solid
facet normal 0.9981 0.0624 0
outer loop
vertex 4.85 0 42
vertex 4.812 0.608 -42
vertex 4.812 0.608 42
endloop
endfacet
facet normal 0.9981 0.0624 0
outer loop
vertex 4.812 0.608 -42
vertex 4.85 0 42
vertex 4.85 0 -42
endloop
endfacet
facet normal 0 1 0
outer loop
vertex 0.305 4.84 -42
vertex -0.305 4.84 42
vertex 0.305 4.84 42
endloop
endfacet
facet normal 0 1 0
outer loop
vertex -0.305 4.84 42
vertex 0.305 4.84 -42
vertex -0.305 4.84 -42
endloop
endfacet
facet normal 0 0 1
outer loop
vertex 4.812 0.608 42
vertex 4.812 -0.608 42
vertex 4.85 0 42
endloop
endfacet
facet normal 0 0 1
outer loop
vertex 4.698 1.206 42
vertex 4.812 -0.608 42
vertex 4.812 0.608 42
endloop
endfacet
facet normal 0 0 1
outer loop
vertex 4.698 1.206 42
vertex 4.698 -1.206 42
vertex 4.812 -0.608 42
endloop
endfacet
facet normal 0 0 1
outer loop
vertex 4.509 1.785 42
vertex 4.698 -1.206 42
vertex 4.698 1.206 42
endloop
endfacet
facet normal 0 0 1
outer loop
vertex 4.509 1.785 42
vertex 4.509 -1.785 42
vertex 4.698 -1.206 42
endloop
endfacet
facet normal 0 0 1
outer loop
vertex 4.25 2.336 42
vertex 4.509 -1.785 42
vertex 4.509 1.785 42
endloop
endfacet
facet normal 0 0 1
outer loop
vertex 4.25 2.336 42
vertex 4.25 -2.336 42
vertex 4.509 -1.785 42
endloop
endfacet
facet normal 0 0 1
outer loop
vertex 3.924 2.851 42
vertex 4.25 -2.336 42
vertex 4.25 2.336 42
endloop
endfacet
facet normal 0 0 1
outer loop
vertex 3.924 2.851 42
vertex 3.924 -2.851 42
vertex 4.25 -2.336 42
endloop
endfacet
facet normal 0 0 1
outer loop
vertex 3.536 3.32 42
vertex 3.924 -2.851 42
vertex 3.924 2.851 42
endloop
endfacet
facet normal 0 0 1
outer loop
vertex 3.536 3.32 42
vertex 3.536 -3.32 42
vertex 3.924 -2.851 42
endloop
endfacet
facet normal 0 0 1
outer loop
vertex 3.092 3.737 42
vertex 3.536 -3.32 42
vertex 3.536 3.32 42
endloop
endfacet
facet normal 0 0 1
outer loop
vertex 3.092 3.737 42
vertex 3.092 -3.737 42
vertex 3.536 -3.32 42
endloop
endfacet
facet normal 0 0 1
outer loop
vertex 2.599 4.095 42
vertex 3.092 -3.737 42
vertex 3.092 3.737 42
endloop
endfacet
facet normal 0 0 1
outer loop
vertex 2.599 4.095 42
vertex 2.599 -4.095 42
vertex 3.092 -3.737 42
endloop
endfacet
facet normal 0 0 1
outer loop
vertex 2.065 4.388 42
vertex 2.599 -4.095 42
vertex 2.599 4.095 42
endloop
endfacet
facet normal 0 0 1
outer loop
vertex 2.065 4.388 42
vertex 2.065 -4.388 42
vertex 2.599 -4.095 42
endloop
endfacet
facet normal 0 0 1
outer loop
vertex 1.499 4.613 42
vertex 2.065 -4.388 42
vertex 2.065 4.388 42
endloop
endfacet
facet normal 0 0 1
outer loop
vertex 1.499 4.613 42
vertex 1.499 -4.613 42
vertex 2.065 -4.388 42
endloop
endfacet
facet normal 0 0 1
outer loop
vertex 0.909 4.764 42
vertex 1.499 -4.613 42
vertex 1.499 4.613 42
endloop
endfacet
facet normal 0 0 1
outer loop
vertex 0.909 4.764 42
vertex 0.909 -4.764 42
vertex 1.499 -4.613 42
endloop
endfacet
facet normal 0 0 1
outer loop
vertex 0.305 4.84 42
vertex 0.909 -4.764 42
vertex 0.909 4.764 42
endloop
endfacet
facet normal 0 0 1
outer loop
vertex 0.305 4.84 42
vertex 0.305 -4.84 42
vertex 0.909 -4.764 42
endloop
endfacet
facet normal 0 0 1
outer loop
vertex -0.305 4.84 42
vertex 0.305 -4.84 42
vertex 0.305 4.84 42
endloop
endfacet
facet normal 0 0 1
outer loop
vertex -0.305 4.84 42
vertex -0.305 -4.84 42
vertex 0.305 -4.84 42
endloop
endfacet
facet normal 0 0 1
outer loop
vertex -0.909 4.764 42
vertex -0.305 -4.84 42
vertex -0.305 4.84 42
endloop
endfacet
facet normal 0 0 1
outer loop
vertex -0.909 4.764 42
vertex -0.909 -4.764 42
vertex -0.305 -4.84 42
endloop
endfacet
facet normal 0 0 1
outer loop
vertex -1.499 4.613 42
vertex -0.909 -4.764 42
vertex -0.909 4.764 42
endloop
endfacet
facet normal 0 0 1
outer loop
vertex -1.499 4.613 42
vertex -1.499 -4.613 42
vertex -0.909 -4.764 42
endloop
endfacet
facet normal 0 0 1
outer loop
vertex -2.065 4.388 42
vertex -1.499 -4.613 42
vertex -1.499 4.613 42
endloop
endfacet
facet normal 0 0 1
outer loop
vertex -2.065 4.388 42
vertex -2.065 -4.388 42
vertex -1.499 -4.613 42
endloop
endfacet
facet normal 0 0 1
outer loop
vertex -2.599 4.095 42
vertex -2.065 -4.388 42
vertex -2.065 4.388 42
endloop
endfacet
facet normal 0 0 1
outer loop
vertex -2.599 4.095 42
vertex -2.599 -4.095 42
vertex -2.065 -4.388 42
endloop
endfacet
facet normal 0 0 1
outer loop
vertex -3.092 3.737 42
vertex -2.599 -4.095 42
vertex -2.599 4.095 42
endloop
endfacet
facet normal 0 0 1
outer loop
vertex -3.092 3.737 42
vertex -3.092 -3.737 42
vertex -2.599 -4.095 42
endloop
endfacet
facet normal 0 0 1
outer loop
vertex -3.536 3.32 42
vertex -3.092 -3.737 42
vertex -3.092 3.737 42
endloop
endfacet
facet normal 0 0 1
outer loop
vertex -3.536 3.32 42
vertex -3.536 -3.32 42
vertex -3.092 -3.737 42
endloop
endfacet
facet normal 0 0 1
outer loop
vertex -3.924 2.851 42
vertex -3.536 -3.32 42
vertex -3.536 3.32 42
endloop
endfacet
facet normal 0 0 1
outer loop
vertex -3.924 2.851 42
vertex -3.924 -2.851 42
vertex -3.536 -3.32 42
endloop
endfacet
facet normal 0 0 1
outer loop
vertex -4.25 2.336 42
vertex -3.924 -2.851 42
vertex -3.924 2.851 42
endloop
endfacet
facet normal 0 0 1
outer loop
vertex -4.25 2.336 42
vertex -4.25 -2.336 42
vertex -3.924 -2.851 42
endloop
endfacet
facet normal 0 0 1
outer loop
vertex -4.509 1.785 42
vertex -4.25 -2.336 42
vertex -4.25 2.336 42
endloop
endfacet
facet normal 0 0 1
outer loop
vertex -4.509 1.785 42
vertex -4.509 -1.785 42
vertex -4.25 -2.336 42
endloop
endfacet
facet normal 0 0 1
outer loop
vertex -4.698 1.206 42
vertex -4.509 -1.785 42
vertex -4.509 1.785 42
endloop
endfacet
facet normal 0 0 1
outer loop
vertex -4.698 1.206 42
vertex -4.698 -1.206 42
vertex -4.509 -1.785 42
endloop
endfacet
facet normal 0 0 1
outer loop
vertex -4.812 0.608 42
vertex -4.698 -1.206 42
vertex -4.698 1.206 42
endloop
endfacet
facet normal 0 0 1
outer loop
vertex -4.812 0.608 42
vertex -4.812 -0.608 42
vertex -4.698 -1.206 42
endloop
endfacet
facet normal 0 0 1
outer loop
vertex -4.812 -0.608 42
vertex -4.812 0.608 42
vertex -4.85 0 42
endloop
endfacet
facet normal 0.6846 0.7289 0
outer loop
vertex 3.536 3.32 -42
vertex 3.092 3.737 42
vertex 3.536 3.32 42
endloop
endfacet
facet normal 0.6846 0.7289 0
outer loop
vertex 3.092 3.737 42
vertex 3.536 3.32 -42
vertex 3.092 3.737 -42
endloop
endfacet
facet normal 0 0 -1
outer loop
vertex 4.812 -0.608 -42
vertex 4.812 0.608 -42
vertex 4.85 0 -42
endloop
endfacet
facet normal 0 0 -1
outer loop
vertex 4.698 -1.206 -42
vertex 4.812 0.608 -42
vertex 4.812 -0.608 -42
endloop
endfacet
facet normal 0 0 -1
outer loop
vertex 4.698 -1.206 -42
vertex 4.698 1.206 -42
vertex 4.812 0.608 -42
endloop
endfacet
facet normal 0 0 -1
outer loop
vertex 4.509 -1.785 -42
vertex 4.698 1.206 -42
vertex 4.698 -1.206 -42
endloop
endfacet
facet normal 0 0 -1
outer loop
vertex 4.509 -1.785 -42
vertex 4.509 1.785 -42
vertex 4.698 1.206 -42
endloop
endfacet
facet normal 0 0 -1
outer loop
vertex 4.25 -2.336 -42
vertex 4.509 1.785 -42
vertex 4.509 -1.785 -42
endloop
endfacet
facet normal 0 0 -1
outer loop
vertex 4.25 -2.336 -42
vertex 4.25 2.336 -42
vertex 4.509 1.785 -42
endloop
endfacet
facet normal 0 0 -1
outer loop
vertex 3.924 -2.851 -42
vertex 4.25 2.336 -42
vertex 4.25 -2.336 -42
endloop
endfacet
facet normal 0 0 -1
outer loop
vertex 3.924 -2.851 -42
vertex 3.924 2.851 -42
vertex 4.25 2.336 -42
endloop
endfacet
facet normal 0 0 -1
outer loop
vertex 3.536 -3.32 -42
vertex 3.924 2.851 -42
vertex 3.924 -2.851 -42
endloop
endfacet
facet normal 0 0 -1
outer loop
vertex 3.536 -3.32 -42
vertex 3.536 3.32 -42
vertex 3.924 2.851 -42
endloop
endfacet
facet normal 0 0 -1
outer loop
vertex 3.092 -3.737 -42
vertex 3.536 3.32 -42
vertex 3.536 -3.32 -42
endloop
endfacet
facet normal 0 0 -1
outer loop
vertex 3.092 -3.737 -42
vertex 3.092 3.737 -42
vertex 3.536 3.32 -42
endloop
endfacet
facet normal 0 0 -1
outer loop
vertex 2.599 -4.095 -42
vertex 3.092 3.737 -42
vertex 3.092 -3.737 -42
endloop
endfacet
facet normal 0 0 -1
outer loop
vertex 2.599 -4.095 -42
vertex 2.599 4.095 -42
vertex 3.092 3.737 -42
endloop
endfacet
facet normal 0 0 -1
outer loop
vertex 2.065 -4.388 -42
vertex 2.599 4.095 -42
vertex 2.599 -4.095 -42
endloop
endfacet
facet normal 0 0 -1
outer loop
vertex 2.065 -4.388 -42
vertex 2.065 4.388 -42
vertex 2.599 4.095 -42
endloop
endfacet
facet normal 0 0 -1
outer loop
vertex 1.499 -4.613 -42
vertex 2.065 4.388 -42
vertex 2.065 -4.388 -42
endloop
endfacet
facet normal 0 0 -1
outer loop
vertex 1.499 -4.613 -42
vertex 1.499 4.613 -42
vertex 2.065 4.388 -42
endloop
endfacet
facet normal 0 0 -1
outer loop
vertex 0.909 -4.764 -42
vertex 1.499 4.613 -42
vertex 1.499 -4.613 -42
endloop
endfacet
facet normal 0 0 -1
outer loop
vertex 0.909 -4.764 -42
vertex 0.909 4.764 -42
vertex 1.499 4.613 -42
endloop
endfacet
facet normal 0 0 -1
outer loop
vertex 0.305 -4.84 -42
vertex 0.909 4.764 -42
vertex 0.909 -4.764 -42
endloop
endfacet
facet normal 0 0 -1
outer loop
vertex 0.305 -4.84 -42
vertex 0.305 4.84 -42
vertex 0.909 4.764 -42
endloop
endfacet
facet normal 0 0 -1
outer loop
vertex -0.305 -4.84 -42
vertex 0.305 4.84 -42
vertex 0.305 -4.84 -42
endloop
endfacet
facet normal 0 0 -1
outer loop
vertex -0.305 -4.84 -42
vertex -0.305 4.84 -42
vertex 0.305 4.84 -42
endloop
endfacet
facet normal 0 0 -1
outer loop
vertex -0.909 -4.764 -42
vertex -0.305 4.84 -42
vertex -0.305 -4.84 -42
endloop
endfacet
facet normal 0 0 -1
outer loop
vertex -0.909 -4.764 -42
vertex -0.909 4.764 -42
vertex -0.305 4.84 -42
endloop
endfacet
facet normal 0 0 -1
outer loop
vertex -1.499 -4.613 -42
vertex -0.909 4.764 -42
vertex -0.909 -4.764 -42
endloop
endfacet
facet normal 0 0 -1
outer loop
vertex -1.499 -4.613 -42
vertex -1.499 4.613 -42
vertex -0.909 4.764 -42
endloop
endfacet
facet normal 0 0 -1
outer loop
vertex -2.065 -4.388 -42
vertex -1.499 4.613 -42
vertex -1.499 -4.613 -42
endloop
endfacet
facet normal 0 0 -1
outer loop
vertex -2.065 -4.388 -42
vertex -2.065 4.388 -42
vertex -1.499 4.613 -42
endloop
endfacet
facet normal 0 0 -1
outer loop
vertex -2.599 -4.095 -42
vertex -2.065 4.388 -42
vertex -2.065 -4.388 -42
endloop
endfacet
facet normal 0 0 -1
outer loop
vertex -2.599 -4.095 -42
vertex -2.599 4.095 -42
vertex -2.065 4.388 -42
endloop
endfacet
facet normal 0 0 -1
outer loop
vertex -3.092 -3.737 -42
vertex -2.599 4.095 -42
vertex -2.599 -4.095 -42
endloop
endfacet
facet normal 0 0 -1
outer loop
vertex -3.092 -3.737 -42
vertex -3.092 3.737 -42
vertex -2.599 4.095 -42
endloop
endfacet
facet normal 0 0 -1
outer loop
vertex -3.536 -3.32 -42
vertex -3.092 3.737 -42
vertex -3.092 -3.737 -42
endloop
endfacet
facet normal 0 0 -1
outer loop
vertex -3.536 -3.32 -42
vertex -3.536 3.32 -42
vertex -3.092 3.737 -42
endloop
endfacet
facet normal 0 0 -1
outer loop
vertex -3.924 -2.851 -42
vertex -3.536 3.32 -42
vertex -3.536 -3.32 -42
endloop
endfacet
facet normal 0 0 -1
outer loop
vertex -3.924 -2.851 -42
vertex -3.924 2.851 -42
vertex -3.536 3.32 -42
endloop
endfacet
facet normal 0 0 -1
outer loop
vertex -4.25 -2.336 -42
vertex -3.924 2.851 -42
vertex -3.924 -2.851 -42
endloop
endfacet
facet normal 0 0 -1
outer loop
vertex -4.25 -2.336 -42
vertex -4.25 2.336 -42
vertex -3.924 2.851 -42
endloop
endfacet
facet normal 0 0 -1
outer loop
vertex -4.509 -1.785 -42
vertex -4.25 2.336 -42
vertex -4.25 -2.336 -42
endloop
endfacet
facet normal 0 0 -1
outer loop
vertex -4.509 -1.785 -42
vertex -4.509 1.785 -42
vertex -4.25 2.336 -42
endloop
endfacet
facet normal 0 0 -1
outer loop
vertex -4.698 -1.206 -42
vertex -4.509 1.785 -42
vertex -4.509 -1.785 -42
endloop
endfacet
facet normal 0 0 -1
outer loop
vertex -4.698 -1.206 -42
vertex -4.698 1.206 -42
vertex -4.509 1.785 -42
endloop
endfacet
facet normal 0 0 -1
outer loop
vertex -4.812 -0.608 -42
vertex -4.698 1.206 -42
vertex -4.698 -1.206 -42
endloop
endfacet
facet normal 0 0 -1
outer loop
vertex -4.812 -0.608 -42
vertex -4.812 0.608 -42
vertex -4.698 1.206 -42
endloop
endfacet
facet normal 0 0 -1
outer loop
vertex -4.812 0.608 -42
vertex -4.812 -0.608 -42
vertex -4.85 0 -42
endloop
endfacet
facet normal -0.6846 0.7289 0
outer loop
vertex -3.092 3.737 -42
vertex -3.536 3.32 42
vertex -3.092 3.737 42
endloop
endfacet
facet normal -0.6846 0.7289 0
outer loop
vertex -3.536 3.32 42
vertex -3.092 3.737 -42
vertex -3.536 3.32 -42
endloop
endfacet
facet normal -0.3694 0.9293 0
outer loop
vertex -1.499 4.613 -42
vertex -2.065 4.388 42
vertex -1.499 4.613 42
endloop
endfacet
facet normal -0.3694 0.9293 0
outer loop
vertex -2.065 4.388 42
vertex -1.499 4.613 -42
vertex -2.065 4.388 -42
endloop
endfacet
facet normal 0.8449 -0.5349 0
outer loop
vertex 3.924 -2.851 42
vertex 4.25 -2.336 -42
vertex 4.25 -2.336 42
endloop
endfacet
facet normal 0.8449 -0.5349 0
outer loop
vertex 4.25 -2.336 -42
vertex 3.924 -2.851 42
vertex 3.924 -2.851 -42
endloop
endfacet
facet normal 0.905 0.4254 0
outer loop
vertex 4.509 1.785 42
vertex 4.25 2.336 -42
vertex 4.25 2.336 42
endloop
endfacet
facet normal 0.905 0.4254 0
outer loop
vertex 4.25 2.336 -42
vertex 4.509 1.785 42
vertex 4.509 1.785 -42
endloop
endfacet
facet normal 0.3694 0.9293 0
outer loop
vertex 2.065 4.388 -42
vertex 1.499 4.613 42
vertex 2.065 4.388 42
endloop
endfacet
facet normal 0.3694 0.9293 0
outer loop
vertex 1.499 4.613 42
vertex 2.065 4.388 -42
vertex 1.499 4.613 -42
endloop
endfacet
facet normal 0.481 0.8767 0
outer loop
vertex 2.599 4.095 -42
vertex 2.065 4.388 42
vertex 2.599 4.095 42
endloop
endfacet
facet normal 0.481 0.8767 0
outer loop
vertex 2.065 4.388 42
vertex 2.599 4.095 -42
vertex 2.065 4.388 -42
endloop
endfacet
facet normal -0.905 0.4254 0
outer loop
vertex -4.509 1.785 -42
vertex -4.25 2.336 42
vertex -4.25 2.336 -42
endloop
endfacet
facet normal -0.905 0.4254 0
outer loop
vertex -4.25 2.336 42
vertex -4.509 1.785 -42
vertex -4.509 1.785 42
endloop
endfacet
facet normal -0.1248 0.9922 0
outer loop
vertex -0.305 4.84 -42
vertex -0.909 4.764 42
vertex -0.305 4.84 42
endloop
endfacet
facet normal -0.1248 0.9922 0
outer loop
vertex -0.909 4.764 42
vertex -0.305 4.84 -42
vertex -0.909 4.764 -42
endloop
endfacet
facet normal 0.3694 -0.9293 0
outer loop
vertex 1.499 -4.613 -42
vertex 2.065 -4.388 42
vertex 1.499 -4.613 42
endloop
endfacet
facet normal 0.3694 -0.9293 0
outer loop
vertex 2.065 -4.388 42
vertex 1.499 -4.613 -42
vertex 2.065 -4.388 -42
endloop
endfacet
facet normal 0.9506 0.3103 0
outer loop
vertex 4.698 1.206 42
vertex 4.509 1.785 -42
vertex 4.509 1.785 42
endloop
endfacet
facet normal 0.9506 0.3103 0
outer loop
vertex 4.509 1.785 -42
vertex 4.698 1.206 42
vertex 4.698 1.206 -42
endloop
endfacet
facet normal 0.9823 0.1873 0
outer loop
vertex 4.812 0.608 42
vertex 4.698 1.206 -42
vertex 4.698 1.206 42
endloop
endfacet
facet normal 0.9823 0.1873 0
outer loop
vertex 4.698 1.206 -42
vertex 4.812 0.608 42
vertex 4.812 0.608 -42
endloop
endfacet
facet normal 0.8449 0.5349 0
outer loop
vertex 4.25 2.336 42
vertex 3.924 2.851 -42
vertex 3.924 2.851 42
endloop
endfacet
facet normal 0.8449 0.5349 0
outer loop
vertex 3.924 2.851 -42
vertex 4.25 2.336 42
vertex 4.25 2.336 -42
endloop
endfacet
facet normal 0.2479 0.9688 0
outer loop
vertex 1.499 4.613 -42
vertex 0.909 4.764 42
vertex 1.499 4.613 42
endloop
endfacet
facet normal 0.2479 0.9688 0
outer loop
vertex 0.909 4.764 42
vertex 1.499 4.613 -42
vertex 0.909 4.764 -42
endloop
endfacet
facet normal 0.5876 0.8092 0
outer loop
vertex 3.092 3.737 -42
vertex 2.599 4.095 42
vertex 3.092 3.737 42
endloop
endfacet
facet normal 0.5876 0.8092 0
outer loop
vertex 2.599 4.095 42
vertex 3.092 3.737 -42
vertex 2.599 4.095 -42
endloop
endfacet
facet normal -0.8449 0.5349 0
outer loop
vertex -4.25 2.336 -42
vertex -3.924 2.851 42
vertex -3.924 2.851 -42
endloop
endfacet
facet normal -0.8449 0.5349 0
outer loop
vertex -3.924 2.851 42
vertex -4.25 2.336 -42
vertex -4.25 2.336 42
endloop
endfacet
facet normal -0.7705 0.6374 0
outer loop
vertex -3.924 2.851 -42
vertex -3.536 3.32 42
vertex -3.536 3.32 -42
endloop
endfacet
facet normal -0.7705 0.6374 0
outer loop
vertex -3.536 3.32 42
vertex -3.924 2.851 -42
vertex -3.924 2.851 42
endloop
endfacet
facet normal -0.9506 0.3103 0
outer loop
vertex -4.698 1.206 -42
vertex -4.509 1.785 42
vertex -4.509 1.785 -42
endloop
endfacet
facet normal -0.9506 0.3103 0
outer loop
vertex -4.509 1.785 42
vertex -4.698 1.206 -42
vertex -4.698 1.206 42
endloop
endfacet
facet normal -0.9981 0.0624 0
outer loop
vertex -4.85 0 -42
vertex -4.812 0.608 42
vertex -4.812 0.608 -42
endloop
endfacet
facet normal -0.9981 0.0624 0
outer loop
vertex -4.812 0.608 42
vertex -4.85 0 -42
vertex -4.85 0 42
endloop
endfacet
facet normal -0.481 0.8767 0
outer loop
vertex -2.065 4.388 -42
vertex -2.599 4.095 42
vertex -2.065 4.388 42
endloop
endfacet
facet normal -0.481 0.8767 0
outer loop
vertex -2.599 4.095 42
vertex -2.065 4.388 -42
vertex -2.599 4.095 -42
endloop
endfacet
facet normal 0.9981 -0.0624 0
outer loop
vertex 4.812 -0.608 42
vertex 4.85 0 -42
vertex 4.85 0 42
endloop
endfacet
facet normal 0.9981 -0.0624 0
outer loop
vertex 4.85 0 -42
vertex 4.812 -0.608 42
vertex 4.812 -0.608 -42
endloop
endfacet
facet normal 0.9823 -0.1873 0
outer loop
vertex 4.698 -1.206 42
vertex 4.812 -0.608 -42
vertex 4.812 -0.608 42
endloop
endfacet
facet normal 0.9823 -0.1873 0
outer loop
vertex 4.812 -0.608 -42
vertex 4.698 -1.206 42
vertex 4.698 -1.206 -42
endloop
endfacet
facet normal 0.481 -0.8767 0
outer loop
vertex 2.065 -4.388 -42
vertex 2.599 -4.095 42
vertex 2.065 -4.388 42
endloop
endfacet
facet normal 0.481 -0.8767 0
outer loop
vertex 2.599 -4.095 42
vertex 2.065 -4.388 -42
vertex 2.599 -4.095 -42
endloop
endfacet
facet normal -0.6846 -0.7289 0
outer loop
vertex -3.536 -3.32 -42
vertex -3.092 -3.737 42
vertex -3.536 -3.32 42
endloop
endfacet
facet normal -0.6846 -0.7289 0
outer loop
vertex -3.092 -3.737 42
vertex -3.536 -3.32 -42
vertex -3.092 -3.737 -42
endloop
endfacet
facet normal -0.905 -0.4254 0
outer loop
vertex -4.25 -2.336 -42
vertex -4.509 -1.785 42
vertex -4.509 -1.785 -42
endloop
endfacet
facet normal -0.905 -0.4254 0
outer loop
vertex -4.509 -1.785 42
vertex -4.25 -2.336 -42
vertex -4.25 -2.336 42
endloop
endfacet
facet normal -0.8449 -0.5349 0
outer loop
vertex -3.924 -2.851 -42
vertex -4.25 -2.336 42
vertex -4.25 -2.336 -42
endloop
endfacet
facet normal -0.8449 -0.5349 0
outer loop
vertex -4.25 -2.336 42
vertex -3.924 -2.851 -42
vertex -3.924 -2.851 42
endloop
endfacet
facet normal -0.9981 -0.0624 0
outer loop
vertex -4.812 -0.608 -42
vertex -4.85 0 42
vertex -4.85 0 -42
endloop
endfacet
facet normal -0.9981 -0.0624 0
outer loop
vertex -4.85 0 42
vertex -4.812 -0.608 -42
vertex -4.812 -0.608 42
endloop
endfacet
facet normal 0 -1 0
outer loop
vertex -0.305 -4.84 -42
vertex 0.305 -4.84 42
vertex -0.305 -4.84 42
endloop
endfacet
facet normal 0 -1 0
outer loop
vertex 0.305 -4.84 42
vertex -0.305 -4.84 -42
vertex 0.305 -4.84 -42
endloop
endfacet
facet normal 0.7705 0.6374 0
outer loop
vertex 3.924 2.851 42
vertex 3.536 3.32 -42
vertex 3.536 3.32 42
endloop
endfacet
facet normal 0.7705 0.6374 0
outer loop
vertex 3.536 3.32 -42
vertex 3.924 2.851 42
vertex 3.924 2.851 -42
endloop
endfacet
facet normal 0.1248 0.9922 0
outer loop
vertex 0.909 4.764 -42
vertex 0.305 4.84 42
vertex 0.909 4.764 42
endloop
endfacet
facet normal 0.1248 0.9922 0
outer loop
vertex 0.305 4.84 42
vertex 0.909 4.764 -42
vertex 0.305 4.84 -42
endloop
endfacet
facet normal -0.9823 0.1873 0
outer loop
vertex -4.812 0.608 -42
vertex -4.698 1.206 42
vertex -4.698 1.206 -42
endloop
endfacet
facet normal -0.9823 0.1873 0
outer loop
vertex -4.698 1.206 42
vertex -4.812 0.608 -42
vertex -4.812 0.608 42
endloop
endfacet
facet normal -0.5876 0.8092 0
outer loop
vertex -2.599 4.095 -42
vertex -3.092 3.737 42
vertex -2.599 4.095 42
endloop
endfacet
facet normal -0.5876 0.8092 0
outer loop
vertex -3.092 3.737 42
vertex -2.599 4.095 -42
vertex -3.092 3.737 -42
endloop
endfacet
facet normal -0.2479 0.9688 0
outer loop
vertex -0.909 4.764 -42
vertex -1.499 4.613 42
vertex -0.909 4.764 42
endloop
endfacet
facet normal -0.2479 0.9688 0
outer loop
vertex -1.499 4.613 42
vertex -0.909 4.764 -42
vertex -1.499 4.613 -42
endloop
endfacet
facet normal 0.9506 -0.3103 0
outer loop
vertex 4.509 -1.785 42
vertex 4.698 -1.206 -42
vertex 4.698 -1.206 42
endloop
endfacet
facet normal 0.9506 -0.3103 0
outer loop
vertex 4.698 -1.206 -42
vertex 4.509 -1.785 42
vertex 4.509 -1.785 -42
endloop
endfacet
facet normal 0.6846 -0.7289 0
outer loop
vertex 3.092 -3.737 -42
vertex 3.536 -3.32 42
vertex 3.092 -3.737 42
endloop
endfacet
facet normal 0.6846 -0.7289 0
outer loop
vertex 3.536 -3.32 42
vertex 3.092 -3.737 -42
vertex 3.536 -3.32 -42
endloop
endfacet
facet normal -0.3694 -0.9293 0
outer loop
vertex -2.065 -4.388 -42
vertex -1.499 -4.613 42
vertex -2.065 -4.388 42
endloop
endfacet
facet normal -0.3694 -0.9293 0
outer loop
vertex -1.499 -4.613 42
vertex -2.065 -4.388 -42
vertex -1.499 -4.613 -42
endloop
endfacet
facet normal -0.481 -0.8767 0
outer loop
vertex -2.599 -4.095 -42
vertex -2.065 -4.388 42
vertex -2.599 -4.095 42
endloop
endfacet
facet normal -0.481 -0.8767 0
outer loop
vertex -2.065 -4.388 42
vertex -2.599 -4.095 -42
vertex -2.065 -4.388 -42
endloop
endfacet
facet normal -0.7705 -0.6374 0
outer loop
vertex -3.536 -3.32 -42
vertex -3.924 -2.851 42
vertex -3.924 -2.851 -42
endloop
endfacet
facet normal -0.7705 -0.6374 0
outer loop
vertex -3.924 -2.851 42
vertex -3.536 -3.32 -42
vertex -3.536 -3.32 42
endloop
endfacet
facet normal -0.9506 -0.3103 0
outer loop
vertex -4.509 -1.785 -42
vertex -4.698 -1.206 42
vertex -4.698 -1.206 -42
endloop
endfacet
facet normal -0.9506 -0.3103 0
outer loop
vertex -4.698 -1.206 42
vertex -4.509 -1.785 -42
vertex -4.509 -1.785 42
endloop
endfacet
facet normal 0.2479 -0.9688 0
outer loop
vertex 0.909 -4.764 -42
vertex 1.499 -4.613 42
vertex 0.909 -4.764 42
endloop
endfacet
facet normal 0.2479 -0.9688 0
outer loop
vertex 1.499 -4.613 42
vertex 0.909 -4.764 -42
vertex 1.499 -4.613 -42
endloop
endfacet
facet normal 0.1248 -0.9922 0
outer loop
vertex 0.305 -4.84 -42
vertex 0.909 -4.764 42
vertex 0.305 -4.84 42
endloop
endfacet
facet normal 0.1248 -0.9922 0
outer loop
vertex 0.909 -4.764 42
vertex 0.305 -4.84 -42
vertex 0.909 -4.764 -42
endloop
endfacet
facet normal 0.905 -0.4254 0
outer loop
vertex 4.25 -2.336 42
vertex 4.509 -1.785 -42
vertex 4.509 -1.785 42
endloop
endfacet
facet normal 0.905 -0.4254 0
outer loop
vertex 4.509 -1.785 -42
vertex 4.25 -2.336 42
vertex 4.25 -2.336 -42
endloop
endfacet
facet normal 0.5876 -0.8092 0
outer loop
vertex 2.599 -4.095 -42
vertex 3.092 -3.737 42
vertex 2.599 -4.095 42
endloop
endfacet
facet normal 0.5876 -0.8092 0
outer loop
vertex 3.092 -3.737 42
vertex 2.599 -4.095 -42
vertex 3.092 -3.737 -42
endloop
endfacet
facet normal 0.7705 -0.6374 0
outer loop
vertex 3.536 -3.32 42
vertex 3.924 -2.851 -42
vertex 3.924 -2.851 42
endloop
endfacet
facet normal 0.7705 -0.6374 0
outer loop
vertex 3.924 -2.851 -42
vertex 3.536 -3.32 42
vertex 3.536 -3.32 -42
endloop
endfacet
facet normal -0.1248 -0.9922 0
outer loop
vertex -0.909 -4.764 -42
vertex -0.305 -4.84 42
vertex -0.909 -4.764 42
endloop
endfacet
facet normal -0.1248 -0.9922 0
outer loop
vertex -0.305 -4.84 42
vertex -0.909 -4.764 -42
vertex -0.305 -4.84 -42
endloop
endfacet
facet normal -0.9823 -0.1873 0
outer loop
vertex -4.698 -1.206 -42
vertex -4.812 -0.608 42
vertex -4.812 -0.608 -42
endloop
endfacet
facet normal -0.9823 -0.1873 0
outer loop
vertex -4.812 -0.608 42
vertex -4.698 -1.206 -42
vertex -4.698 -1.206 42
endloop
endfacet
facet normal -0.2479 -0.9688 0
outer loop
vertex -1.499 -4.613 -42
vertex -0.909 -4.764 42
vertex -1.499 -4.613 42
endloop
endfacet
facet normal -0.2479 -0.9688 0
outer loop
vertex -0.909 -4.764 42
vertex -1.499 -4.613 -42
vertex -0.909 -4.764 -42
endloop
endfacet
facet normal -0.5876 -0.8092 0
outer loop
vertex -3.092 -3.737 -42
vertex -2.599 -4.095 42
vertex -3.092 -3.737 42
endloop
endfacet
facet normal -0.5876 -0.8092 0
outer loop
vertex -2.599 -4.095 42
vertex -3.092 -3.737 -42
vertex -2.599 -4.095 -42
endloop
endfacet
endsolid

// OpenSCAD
$fn = 50;


difference() {
	union() {
		translate(v = [0, 0, -42.0000000000]) {
			cylinder(h = 84, r = 4.8500000000);
		}
	}
	union() {
		translate(v = [0, 0, -100.0000000000]) {
			cylinder(h = 200, r = 0);
		}
	}
}
